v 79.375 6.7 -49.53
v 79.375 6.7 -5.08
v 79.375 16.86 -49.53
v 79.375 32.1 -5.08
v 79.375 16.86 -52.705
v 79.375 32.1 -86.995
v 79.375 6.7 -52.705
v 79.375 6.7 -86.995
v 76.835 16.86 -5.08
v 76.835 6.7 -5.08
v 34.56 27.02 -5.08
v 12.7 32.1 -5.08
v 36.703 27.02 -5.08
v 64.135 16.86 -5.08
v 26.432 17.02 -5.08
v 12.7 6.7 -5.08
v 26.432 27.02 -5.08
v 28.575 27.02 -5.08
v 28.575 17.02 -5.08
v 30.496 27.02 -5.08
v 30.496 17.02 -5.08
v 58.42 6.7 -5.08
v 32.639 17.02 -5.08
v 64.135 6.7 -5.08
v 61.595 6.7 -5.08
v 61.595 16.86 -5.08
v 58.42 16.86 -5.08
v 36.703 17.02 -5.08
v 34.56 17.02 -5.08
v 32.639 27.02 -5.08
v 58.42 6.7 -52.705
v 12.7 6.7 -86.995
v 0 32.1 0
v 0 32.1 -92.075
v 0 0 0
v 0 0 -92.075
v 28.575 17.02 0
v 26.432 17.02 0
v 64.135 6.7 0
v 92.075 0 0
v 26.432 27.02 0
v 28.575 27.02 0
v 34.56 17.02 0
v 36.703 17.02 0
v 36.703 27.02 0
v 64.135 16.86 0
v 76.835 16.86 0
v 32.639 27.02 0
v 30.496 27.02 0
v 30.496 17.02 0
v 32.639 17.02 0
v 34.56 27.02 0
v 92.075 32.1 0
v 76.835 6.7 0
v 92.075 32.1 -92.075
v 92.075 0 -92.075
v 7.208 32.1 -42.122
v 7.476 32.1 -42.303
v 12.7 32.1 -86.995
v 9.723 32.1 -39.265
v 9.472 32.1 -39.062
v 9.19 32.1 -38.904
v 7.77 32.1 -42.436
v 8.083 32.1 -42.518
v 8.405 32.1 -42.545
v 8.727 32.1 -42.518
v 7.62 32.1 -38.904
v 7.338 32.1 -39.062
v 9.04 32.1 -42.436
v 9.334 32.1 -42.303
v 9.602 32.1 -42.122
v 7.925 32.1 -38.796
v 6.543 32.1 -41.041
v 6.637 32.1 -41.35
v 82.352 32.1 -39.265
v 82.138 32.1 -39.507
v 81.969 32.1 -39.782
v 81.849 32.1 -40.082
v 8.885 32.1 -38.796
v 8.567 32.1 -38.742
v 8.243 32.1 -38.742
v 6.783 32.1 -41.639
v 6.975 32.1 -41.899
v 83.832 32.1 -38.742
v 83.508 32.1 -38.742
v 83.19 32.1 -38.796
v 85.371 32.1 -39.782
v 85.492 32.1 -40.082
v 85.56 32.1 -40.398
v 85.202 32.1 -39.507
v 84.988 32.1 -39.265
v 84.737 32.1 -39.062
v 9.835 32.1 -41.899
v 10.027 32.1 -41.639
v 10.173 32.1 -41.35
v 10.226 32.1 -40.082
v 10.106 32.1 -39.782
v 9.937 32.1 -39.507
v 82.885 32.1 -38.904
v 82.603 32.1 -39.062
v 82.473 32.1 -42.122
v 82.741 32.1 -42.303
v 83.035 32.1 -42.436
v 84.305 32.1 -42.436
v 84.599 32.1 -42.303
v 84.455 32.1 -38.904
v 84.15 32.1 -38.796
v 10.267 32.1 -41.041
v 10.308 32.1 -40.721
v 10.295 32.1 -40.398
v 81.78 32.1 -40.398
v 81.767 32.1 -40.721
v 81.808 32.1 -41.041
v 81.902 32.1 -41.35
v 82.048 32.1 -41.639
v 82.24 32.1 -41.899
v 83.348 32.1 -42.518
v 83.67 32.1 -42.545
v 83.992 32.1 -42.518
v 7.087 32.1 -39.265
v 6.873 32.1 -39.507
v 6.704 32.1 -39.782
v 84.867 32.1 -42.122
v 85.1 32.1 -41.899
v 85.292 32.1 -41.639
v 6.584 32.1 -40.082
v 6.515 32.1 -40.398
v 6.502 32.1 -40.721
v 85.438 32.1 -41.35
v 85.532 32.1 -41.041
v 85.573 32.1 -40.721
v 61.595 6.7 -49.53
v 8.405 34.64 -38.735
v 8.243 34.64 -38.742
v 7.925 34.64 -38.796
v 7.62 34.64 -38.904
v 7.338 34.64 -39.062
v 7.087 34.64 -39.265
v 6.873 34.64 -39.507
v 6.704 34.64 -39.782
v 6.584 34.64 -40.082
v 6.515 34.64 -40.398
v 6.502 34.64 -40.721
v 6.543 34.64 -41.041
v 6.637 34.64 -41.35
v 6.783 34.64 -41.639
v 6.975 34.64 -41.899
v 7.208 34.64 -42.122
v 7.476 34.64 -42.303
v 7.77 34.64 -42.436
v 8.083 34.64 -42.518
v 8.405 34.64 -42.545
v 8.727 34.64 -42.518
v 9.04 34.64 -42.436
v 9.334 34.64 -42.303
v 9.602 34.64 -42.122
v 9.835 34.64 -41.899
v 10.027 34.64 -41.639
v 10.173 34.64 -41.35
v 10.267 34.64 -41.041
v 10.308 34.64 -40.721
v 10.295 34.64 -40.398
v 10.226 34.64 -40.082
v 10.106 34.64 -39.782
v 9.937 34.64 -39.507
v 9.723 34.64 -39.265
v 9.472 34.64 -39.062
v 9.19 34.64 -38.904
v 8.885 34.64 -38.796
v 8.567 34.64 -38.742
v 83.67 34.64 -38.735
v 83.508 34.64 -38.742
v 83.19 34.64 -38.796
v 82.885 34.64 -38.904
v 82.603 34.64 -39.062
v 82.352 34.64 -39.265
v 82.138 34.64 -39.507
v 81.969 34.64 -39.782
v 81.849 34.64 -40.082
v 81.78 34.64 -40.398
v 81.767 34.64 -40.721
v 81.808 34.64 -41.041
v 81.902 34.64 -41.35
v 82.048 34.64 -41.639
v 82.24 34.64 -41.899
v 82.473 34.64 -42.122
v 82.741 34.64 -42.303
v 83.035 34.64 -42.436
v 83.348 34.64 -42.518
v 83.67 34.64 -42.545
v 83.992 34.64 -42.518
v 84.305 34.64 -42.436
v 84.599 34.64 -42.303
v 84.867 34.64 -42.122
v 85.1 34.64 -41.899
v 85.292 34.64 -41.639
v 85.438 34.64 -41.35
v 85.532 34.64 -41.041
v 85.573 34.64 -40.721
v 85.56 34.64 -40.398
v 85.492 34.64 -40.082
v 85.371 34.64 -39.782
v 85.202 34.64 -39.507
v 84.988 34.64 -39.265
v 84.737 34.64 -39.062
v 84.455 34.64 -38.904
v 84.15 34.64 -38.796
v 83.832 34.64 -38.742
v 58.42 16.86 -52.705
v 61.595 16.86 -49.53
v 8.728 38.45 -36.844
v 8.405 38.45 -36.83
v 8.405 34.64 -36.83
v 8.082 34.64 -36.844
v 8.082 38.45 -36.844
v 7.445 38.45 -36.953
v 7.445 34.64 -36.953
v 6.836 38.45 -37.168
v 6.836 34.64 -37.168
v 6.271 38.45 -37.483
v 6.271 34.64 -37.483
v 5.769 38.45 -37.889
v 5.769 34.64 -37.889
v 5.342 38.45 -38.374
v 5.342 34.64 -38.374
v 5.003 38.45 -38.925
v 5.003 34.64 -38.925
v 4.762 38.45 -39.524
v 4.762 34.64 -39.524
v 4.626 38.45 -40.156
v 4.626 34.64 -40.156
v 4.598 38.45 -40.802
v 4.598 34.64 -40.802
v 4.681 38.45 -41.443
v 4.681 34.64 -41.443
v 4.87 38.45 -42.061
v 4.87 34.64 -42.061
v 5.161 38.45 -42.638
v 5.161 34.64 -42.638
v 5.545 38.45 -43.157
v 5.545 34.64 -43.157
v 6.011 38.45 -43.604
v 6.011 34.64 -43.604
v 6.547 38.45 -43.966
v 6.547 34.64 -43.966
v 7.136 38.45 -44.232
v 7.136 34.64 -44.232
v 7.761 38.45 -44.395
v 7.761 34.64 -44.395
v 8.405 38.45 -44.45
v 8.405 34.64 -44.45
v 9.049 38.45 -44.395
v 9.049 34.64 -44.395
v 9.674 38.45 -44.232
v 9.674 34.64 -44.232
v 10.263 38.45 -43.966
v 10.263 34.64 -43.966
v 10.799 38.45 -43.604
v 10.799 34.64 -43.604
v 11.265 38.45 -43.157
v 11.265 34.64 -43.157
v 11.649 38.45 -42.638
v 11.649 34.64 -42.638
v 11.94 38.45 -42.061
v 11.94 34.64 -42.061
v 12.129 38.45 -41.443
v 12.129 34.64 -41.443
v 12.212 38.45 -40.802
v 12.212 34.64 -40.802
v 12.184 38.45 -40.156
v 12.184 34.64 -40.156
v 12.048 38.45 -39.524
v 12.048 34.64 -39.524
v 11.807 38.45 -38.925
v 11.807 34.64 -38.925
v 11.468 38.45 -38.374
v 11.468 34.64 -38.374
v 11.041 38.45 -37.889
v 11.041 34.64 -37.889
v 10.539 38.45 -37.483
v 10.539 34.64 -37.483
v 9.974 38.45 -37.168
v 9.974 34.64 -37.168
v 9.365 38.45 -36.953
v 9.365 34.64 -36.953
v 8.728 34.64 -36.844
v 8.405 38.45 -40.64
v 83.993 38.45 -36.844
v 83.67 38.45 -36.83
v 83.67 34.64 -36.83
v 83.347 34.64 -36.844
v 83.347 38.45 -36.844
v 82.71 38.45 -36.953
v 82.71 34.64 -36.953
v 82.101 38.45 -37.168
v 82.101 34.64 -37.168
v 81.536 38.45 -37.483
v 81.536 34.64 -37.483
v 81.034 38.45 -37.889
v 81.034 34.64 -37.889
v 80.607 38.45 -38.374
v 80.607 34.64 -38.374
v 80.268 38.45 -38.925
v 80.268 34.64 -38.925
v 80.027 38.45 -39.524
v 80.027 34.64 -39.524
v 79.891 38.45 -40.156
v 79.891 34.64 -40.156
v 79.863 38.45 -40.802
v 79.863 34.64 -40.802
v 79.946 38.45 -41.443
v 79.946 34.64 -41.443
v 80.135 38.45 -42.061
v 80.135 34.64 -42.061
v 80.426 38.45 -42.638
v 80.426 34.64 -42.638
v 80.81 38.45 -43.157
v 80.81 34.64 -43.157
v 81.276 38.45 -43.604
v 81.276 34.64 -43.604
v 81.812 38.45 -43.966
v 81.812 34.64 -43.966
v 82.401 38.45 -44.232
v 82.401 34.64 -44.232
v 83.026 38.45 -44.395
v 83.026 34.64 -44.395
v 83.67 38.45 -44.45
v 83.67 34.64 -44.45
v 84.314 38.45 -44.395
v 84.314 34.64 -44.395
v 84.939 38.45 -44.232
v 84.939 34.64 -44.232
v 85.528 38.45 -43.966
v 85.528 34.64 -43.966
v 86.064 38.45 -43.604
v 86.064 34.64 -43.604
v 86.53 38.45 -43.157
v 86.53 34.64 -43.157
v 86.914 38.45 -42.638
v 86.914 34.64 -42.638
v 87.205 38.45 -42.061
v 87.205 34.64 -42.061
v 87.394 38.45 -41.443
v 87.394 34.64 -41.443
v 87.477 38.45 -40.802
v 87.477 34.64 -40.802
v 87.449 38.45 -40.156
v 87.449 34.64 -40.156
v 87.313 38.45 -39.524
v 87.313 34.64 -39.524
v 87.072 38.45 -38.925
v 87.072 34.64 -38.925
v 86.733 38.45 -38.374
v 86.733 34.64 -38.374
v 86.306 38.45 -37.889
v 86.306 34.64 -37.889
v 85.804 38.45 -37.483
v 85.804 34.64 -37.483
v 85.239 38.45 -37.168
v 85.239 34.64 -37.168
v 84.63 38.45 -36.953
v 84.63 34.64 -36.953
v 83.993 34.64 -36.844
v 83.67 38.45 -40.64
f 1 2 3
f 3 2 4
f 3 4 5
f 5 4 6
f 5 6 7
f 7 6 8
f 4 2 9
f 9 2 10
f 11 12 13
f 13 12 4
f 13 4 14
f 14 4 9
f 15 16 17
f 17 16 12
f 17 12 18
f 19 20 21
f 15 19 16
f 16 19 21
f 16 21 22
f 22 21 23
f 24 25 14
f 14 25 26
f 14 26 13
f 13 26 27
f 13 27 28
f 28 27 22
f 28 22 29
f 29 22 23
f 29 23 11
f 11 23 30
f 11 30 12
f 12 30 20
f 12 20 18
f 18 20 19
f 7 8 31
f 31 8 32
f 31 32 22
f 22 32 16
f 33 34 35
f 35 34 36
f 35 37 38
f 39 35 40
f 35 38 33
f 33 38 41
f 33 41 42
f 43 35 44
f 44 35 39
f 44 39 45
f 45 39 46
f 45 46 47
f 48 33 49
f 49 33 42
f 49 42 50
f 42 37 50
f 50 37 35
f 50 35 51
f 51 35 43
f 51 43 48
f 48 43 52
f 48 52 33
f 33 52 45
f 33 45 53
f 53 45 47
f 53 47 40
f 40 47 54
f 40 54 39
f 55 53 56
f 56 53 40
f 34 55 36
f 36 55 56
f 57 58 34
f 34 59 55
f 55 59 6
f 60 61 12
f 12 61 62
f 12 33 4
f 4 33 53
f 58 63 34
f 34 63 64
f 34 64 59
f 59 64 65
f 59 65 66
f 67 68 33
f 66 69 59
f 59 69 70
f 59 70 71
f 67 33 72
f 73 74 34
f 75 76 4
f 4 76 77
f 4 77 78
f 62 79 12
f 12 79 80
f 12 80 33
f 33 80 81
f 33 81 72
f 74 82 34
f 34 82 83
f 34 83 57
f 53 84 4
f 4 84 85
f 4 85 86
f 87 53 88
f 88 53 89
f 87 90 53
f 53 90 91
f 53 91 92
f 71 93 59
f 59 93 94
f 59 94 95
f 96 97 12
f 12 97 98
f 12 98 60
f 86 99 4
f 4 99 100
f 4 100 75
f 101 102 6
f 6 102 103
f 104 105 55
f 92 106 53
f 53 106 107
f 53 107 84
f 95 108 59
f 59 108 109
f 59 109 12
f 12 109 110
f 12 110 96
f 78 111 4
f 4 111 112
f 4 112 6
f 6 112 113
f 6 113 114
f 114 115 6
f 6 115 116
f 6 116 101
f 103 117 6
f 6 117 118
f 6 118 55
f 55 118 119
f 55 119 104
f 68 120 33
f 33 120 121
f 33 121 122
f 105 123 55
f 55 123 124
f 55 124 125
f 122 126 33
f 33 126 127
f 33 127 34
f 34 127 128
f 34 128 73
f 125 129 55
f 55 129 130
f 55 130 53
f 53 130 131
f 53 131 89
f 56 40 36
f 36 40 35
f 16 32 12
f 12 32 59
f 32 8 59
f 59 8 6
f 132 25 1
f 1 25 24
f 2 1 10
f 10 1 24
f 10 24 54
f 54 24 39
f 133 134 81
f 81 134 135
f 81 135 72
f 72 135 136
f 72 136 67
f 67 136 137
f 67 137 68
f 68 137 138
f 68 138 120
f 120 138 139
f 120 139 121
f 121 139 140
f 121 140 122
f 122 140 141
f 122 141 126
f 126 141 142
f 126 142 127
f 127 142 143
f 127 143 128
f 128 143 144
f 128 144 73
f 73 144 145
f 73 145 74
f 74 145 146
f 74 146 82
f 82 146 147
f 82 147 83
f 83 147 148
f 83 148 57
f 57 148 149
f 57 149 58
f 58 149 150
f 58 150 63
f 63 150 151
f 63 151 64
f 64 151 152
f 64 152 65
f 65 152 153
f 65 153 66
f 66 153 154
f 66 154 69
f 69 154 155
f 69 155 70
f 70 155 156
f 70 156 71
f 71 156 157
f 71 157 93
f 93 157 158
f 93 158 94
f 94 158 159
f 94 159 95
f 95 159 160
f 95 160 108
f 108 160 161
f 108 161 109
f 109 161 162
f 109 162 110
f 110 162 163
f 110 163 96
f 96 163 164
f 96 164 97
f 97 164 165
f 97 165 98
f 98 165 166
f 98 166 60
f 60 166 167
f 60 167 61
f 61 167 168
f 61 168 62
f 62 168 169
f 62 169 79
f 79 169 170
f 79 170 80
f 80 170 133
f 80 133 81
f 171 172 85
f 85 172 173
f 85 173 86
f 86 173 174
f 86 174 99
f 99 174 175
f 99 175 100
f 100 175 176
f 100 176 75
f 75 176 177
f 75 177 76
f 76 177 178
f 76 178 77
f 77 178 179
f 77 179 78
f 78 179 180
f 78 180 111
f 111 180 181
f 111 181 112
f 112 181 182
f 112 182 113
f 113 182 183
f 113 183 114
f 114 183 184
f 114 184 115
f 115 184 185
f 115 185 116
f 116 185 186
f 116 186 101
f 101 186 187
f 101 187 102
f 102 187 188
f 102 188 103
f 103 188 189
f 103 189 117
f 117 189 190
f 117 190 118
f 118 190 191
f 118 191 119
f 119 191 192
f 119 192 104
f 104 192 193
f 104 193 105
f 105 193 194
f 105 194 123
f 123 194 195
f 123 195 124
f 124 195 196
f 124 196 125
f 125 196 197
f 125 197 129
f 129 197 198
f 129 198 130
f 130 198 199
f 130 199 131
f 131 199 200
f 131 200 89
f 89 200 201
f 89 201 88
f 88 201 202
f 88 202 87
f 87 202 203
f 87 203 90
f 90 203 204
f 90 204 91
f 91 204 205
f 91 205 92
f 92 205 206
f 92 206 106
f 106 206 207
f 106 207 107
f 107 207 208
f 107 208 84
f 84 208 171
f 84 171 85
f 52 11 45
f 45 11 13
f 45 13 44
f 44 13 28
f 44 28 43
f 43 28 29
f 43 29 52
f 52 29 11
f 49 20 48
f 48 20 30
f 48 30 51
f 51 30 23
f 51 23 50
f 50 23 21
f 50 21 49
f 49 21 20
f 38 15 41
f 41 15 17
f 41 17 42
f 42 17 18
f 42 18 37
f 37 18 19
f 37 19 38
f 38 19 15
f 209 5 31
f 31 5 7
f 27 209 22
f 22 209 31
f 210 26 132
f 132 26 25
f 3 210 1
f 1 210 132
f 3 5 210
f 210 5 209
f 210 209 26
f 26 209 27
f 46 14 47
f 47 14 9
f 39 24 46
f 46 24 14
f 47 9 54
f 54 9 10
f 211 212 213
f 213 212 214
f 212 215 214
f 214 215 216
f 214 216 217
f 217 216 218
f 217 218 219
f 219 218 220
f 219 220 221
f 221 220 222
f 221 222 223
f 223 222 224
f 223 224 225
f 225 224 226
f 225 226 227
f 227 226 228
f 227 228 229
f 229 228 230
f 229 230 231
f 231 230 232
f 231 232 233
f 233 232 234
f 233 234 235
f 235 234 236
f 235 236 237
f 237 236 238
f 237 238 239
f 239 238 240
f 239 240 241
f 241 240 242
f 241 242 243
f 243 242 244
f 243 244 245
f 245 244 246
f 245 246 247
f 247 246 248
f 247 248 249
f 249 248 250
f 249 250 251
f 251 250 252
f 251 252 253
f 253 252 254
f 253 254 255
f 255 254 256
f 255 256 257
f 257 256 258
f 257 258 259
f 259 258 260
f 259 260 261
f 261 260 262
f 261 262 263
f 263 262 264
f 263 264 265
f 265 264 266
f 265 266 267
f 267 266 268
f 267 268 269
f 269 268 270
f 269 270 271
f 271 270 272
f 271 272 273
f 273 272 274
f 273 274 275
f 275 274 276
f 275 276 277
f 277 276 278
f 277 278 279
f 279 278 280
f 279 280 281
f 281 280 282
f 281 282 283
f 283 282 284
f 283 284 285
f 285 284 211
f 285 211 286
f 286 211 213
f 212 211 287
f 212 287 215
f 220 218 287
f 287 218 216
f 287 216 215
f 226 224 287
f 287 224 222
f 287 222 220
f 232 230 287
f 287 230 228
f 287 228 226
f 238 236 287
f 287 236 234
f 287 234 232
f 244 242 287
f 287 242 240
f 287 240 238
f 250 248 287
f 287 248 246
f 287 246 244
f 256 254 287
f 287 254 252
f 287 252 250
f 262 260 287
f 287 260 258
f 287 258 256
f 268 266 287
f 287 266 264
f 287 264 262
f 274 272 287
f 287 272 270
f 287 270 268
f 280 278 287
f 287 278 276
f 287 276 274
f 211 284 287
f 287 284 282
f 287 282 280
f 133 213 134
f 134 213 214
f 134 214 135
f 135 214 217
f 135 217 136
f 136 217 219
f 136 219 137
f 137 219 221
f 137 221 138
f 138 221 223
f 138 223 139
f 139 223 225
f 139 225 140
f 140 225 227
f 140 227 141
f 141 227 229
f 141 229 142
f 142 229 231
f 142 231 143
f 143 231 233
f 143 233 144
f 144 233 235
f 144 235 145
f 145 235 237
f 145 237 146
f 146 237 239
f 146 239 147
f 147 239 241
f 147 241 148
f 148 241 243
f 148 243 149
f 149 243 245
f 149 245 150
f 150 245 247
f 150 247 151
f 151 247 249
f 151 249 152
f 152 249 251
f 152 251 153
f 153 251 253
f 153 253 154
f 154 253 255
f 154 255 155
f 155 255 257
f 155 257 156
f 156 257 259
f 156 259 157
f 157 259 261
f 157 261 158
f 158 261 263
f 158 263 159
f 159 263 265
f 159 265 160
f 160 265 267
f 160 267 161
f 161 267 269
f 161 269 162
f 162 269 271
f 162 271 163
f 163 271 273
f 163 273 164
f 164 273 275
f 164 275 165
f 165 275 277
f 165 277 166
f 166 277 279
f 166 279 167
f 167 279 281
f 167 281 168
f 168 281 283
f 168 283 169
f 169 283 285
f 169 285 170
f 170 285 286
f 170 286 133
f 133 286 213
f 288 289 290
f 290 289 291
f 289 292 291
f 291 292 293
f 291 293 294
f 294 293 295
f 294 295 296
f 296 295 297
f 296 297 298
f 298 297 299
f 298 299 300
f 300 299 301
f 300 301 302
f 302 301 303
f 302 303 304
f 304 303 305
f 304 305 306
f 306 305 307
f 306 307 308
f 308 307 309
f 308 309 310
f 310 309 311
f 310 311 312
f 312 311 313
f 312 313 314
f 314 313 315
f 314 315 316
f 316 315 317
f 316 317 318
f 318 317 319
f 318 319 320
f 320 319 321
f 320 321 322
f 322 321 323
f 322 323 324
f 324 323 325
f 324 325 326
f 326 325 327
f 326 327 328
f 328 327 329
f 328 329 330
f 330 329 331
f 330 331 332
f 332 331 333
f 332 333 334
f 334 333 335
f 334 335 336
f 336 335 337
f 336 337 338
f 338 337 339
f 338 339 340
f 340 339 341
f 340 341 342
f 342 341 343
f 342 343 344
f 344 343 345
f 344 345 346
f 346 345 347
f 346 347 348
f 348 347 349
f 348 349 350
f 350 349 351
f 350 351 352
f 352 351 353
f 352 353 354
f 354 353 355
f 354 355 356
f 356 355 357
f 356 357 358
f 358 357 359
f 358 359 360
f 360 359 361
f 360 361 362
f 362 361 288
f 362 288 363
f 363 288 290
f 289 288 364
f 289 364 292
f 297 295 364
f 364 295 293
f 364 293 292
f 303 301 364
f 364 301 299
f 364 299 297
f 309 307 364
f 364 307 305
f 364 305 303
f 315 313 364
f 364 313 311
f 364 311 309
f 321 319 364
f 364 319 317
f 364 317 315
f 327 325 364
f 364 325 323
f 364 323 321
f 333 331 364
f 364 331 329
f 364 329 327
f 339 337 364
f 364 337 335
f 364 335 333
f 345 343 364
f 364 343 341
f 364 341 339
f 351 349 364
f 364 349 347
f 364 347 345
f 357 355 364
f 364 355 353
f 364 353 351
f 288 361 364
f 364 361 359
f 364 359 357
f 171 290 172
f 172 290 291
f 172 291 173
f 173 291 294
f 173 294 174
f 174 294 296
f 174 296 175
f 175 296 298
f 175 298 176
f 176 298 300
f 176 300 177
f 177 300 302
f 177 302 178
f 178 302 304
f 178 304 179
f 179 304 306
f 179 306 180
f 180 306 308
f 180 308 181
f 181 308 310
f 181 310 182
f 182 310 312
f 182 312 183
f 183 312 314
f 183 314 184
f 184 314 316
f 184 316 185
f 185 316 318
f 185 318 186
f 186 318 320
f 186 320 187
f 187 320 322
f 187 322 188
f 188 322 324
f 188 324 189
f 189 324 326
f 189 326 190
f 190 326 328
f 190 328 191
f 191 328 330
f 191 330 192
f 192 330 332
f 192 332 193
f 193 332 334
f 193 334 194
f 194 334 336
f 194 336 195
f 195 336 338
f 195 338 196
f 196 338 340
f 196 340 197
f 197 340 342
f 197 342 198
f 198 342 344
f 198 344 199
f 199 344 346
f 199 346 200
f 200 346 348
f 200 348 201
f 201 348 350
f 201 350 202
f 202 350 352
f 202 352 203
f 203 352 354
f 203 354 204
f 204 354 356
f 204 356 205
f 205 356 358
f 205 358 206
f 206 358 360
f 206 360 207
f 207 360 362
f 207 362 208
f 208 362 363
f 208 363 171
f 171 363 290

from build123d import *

# Parameters (mm, degrees)
SKETCH1_W           = 92.075
SKETCH1_H           = 92.075
BOSS_EXTRUDE1_DEPTH = 32.1
SKETCH3_W           = 66.675
SKETCH3_H           = 81.915
CUT_EXTRUDE2_DEPTH  = 25.4
SKETCH4_R           = 1.905
BOSS_EXTRUDE2_DEPTH = 2.54
SKETCH4_3_R         = 1.905
BOSS_EXTRUDE3_DEPTH = 2.54
SKETCH8_W           = 2.142857143
SKETCH8_H           = 10
CUT_EXTRUDE4_DEPTH  = 7
BOSS_EXTRUDE5_DEPTH = 10.16
SKETCH11_W          = 12.7
SKETCH11_H          = 10.16
CUT_EXTRUDE5_DEPTH  = 7.62
SKETCH15_R          = 3.81
BOSS_EXTRUDE7_DEPTH = 3.81


with BuildPart() as part:
    # Sketch1 → Boss-Extrude1 (new body)
    with BuildSketch(Plane(origin=(0, 0, 0), x_dir=(1, 0, 0), z_dir=(0, 1, 0))):
        with Locations((46.0375, 46.0375)):
            Rectangle(SKETCH1_W, SKETCH1_H)
    extrude(amount=BOSS_EXTRUDE1_DEPTH)

    # Sketch3 → Cut-Extrude2 (cut)
    with BuildSketch(Plane(origin=(0, 32.1, 0), x_dir=(1, 0, 0), z_dir=(0, 1, 0))):
        with Locations((46.0375, 46.0375)):
            Rectangle(SKETCH3_W, SKETCH3_H)
    extrude(amount=-CUT_EXTRUDE2_DEPTH, mode=Mode.SUBTRACT)

    # Sketch4 → Boss-Extrude2 (add)
    with BuildSketch(Plane(origin=(0, 32.1, 0), x_dir=(1, 0, 0), z_dir=(0, 1, 0))):
        with Locations((8.405, 40.64)):
            Circle(SKETCH4_R)
    extrude(amount=BOSS_EXTRUDE2_DEPTH)

    # Sketch4<3> → Boss-Extrude3 (add)
    with BuildSketch(Plane(origin=(0, 32.1, 0), x_dir=(1, 0, 0), z_dir=(0, 1, 0))):
        with Locations((8.405, 40.64)):
            Circle(SKETCH4_3_R)
        with Locations((83.67, 40.64)):
            Circle(SKETCH4_3_R)
    extrude(amount=BOSS_EXTRUDE3_DEPTH)

    # Sketch8 → Cut-Extrude4 (cut)
    with BuildSketch(Plane.XY):
        with Locations((27.503571429, 22.02)):
            Rectangle(SKETCH8_W, SKETCH8_H)
        with Locations((31.567571429, 22.02)):
            Rectangle(SKETCH8_W, SKETCH8_H)
        with Locations((35.631571429, 22.02)):
            Rectangle(SKETCH8_W, SKETCH8_H)
    extrude(amount=-CUT_EXTRUDE4_DEPTH, mode=Mode.SUBTRACT)

    # Sketch10 → Boss-Extrude5 (add)
    with BuildSketch(Plane(origin=(0, 6.7, 0), x_dir=(1, 0, 0), z_dir=(0, 1, 0))):
        Polygon((61.595, 49.53), (79.375, 49.53), (79.375, 52.705), (58.42, 52.705), (58.42, 5.08), (61.595, 5.08), align=None)
    extrude(amount=BOSS_EXTRUDE5_DEPTH)

    # Sketch11 → Cut-Extrude5 (cut)
    with BuildSketch(Plane.XY):
        with Locations((70.485, 11.78)):
            Rectangle(SKETCH11_W, SKETCH11_H)
    extrude(amount=-CUT_EXTRUDE5_DEPTH, mode=Mode.SUBTRACT)

    # Sketch15 → Boss-Extrude7 (add)
    with BuildSketch(Plane(origin=(0, 34.64, 0), x_dir=(1, 0, 0), z_dir=(0, 1, 0))):
        with Locations((8.405, 40.64)):
            Circle(SKETCH15_R)
        with Locations((83.67, 40.64)):
            Circle(SKETCH15_R)
    extrude(amount=BOSS_EXTRUDE7_DEPTH)


solid = part.part
